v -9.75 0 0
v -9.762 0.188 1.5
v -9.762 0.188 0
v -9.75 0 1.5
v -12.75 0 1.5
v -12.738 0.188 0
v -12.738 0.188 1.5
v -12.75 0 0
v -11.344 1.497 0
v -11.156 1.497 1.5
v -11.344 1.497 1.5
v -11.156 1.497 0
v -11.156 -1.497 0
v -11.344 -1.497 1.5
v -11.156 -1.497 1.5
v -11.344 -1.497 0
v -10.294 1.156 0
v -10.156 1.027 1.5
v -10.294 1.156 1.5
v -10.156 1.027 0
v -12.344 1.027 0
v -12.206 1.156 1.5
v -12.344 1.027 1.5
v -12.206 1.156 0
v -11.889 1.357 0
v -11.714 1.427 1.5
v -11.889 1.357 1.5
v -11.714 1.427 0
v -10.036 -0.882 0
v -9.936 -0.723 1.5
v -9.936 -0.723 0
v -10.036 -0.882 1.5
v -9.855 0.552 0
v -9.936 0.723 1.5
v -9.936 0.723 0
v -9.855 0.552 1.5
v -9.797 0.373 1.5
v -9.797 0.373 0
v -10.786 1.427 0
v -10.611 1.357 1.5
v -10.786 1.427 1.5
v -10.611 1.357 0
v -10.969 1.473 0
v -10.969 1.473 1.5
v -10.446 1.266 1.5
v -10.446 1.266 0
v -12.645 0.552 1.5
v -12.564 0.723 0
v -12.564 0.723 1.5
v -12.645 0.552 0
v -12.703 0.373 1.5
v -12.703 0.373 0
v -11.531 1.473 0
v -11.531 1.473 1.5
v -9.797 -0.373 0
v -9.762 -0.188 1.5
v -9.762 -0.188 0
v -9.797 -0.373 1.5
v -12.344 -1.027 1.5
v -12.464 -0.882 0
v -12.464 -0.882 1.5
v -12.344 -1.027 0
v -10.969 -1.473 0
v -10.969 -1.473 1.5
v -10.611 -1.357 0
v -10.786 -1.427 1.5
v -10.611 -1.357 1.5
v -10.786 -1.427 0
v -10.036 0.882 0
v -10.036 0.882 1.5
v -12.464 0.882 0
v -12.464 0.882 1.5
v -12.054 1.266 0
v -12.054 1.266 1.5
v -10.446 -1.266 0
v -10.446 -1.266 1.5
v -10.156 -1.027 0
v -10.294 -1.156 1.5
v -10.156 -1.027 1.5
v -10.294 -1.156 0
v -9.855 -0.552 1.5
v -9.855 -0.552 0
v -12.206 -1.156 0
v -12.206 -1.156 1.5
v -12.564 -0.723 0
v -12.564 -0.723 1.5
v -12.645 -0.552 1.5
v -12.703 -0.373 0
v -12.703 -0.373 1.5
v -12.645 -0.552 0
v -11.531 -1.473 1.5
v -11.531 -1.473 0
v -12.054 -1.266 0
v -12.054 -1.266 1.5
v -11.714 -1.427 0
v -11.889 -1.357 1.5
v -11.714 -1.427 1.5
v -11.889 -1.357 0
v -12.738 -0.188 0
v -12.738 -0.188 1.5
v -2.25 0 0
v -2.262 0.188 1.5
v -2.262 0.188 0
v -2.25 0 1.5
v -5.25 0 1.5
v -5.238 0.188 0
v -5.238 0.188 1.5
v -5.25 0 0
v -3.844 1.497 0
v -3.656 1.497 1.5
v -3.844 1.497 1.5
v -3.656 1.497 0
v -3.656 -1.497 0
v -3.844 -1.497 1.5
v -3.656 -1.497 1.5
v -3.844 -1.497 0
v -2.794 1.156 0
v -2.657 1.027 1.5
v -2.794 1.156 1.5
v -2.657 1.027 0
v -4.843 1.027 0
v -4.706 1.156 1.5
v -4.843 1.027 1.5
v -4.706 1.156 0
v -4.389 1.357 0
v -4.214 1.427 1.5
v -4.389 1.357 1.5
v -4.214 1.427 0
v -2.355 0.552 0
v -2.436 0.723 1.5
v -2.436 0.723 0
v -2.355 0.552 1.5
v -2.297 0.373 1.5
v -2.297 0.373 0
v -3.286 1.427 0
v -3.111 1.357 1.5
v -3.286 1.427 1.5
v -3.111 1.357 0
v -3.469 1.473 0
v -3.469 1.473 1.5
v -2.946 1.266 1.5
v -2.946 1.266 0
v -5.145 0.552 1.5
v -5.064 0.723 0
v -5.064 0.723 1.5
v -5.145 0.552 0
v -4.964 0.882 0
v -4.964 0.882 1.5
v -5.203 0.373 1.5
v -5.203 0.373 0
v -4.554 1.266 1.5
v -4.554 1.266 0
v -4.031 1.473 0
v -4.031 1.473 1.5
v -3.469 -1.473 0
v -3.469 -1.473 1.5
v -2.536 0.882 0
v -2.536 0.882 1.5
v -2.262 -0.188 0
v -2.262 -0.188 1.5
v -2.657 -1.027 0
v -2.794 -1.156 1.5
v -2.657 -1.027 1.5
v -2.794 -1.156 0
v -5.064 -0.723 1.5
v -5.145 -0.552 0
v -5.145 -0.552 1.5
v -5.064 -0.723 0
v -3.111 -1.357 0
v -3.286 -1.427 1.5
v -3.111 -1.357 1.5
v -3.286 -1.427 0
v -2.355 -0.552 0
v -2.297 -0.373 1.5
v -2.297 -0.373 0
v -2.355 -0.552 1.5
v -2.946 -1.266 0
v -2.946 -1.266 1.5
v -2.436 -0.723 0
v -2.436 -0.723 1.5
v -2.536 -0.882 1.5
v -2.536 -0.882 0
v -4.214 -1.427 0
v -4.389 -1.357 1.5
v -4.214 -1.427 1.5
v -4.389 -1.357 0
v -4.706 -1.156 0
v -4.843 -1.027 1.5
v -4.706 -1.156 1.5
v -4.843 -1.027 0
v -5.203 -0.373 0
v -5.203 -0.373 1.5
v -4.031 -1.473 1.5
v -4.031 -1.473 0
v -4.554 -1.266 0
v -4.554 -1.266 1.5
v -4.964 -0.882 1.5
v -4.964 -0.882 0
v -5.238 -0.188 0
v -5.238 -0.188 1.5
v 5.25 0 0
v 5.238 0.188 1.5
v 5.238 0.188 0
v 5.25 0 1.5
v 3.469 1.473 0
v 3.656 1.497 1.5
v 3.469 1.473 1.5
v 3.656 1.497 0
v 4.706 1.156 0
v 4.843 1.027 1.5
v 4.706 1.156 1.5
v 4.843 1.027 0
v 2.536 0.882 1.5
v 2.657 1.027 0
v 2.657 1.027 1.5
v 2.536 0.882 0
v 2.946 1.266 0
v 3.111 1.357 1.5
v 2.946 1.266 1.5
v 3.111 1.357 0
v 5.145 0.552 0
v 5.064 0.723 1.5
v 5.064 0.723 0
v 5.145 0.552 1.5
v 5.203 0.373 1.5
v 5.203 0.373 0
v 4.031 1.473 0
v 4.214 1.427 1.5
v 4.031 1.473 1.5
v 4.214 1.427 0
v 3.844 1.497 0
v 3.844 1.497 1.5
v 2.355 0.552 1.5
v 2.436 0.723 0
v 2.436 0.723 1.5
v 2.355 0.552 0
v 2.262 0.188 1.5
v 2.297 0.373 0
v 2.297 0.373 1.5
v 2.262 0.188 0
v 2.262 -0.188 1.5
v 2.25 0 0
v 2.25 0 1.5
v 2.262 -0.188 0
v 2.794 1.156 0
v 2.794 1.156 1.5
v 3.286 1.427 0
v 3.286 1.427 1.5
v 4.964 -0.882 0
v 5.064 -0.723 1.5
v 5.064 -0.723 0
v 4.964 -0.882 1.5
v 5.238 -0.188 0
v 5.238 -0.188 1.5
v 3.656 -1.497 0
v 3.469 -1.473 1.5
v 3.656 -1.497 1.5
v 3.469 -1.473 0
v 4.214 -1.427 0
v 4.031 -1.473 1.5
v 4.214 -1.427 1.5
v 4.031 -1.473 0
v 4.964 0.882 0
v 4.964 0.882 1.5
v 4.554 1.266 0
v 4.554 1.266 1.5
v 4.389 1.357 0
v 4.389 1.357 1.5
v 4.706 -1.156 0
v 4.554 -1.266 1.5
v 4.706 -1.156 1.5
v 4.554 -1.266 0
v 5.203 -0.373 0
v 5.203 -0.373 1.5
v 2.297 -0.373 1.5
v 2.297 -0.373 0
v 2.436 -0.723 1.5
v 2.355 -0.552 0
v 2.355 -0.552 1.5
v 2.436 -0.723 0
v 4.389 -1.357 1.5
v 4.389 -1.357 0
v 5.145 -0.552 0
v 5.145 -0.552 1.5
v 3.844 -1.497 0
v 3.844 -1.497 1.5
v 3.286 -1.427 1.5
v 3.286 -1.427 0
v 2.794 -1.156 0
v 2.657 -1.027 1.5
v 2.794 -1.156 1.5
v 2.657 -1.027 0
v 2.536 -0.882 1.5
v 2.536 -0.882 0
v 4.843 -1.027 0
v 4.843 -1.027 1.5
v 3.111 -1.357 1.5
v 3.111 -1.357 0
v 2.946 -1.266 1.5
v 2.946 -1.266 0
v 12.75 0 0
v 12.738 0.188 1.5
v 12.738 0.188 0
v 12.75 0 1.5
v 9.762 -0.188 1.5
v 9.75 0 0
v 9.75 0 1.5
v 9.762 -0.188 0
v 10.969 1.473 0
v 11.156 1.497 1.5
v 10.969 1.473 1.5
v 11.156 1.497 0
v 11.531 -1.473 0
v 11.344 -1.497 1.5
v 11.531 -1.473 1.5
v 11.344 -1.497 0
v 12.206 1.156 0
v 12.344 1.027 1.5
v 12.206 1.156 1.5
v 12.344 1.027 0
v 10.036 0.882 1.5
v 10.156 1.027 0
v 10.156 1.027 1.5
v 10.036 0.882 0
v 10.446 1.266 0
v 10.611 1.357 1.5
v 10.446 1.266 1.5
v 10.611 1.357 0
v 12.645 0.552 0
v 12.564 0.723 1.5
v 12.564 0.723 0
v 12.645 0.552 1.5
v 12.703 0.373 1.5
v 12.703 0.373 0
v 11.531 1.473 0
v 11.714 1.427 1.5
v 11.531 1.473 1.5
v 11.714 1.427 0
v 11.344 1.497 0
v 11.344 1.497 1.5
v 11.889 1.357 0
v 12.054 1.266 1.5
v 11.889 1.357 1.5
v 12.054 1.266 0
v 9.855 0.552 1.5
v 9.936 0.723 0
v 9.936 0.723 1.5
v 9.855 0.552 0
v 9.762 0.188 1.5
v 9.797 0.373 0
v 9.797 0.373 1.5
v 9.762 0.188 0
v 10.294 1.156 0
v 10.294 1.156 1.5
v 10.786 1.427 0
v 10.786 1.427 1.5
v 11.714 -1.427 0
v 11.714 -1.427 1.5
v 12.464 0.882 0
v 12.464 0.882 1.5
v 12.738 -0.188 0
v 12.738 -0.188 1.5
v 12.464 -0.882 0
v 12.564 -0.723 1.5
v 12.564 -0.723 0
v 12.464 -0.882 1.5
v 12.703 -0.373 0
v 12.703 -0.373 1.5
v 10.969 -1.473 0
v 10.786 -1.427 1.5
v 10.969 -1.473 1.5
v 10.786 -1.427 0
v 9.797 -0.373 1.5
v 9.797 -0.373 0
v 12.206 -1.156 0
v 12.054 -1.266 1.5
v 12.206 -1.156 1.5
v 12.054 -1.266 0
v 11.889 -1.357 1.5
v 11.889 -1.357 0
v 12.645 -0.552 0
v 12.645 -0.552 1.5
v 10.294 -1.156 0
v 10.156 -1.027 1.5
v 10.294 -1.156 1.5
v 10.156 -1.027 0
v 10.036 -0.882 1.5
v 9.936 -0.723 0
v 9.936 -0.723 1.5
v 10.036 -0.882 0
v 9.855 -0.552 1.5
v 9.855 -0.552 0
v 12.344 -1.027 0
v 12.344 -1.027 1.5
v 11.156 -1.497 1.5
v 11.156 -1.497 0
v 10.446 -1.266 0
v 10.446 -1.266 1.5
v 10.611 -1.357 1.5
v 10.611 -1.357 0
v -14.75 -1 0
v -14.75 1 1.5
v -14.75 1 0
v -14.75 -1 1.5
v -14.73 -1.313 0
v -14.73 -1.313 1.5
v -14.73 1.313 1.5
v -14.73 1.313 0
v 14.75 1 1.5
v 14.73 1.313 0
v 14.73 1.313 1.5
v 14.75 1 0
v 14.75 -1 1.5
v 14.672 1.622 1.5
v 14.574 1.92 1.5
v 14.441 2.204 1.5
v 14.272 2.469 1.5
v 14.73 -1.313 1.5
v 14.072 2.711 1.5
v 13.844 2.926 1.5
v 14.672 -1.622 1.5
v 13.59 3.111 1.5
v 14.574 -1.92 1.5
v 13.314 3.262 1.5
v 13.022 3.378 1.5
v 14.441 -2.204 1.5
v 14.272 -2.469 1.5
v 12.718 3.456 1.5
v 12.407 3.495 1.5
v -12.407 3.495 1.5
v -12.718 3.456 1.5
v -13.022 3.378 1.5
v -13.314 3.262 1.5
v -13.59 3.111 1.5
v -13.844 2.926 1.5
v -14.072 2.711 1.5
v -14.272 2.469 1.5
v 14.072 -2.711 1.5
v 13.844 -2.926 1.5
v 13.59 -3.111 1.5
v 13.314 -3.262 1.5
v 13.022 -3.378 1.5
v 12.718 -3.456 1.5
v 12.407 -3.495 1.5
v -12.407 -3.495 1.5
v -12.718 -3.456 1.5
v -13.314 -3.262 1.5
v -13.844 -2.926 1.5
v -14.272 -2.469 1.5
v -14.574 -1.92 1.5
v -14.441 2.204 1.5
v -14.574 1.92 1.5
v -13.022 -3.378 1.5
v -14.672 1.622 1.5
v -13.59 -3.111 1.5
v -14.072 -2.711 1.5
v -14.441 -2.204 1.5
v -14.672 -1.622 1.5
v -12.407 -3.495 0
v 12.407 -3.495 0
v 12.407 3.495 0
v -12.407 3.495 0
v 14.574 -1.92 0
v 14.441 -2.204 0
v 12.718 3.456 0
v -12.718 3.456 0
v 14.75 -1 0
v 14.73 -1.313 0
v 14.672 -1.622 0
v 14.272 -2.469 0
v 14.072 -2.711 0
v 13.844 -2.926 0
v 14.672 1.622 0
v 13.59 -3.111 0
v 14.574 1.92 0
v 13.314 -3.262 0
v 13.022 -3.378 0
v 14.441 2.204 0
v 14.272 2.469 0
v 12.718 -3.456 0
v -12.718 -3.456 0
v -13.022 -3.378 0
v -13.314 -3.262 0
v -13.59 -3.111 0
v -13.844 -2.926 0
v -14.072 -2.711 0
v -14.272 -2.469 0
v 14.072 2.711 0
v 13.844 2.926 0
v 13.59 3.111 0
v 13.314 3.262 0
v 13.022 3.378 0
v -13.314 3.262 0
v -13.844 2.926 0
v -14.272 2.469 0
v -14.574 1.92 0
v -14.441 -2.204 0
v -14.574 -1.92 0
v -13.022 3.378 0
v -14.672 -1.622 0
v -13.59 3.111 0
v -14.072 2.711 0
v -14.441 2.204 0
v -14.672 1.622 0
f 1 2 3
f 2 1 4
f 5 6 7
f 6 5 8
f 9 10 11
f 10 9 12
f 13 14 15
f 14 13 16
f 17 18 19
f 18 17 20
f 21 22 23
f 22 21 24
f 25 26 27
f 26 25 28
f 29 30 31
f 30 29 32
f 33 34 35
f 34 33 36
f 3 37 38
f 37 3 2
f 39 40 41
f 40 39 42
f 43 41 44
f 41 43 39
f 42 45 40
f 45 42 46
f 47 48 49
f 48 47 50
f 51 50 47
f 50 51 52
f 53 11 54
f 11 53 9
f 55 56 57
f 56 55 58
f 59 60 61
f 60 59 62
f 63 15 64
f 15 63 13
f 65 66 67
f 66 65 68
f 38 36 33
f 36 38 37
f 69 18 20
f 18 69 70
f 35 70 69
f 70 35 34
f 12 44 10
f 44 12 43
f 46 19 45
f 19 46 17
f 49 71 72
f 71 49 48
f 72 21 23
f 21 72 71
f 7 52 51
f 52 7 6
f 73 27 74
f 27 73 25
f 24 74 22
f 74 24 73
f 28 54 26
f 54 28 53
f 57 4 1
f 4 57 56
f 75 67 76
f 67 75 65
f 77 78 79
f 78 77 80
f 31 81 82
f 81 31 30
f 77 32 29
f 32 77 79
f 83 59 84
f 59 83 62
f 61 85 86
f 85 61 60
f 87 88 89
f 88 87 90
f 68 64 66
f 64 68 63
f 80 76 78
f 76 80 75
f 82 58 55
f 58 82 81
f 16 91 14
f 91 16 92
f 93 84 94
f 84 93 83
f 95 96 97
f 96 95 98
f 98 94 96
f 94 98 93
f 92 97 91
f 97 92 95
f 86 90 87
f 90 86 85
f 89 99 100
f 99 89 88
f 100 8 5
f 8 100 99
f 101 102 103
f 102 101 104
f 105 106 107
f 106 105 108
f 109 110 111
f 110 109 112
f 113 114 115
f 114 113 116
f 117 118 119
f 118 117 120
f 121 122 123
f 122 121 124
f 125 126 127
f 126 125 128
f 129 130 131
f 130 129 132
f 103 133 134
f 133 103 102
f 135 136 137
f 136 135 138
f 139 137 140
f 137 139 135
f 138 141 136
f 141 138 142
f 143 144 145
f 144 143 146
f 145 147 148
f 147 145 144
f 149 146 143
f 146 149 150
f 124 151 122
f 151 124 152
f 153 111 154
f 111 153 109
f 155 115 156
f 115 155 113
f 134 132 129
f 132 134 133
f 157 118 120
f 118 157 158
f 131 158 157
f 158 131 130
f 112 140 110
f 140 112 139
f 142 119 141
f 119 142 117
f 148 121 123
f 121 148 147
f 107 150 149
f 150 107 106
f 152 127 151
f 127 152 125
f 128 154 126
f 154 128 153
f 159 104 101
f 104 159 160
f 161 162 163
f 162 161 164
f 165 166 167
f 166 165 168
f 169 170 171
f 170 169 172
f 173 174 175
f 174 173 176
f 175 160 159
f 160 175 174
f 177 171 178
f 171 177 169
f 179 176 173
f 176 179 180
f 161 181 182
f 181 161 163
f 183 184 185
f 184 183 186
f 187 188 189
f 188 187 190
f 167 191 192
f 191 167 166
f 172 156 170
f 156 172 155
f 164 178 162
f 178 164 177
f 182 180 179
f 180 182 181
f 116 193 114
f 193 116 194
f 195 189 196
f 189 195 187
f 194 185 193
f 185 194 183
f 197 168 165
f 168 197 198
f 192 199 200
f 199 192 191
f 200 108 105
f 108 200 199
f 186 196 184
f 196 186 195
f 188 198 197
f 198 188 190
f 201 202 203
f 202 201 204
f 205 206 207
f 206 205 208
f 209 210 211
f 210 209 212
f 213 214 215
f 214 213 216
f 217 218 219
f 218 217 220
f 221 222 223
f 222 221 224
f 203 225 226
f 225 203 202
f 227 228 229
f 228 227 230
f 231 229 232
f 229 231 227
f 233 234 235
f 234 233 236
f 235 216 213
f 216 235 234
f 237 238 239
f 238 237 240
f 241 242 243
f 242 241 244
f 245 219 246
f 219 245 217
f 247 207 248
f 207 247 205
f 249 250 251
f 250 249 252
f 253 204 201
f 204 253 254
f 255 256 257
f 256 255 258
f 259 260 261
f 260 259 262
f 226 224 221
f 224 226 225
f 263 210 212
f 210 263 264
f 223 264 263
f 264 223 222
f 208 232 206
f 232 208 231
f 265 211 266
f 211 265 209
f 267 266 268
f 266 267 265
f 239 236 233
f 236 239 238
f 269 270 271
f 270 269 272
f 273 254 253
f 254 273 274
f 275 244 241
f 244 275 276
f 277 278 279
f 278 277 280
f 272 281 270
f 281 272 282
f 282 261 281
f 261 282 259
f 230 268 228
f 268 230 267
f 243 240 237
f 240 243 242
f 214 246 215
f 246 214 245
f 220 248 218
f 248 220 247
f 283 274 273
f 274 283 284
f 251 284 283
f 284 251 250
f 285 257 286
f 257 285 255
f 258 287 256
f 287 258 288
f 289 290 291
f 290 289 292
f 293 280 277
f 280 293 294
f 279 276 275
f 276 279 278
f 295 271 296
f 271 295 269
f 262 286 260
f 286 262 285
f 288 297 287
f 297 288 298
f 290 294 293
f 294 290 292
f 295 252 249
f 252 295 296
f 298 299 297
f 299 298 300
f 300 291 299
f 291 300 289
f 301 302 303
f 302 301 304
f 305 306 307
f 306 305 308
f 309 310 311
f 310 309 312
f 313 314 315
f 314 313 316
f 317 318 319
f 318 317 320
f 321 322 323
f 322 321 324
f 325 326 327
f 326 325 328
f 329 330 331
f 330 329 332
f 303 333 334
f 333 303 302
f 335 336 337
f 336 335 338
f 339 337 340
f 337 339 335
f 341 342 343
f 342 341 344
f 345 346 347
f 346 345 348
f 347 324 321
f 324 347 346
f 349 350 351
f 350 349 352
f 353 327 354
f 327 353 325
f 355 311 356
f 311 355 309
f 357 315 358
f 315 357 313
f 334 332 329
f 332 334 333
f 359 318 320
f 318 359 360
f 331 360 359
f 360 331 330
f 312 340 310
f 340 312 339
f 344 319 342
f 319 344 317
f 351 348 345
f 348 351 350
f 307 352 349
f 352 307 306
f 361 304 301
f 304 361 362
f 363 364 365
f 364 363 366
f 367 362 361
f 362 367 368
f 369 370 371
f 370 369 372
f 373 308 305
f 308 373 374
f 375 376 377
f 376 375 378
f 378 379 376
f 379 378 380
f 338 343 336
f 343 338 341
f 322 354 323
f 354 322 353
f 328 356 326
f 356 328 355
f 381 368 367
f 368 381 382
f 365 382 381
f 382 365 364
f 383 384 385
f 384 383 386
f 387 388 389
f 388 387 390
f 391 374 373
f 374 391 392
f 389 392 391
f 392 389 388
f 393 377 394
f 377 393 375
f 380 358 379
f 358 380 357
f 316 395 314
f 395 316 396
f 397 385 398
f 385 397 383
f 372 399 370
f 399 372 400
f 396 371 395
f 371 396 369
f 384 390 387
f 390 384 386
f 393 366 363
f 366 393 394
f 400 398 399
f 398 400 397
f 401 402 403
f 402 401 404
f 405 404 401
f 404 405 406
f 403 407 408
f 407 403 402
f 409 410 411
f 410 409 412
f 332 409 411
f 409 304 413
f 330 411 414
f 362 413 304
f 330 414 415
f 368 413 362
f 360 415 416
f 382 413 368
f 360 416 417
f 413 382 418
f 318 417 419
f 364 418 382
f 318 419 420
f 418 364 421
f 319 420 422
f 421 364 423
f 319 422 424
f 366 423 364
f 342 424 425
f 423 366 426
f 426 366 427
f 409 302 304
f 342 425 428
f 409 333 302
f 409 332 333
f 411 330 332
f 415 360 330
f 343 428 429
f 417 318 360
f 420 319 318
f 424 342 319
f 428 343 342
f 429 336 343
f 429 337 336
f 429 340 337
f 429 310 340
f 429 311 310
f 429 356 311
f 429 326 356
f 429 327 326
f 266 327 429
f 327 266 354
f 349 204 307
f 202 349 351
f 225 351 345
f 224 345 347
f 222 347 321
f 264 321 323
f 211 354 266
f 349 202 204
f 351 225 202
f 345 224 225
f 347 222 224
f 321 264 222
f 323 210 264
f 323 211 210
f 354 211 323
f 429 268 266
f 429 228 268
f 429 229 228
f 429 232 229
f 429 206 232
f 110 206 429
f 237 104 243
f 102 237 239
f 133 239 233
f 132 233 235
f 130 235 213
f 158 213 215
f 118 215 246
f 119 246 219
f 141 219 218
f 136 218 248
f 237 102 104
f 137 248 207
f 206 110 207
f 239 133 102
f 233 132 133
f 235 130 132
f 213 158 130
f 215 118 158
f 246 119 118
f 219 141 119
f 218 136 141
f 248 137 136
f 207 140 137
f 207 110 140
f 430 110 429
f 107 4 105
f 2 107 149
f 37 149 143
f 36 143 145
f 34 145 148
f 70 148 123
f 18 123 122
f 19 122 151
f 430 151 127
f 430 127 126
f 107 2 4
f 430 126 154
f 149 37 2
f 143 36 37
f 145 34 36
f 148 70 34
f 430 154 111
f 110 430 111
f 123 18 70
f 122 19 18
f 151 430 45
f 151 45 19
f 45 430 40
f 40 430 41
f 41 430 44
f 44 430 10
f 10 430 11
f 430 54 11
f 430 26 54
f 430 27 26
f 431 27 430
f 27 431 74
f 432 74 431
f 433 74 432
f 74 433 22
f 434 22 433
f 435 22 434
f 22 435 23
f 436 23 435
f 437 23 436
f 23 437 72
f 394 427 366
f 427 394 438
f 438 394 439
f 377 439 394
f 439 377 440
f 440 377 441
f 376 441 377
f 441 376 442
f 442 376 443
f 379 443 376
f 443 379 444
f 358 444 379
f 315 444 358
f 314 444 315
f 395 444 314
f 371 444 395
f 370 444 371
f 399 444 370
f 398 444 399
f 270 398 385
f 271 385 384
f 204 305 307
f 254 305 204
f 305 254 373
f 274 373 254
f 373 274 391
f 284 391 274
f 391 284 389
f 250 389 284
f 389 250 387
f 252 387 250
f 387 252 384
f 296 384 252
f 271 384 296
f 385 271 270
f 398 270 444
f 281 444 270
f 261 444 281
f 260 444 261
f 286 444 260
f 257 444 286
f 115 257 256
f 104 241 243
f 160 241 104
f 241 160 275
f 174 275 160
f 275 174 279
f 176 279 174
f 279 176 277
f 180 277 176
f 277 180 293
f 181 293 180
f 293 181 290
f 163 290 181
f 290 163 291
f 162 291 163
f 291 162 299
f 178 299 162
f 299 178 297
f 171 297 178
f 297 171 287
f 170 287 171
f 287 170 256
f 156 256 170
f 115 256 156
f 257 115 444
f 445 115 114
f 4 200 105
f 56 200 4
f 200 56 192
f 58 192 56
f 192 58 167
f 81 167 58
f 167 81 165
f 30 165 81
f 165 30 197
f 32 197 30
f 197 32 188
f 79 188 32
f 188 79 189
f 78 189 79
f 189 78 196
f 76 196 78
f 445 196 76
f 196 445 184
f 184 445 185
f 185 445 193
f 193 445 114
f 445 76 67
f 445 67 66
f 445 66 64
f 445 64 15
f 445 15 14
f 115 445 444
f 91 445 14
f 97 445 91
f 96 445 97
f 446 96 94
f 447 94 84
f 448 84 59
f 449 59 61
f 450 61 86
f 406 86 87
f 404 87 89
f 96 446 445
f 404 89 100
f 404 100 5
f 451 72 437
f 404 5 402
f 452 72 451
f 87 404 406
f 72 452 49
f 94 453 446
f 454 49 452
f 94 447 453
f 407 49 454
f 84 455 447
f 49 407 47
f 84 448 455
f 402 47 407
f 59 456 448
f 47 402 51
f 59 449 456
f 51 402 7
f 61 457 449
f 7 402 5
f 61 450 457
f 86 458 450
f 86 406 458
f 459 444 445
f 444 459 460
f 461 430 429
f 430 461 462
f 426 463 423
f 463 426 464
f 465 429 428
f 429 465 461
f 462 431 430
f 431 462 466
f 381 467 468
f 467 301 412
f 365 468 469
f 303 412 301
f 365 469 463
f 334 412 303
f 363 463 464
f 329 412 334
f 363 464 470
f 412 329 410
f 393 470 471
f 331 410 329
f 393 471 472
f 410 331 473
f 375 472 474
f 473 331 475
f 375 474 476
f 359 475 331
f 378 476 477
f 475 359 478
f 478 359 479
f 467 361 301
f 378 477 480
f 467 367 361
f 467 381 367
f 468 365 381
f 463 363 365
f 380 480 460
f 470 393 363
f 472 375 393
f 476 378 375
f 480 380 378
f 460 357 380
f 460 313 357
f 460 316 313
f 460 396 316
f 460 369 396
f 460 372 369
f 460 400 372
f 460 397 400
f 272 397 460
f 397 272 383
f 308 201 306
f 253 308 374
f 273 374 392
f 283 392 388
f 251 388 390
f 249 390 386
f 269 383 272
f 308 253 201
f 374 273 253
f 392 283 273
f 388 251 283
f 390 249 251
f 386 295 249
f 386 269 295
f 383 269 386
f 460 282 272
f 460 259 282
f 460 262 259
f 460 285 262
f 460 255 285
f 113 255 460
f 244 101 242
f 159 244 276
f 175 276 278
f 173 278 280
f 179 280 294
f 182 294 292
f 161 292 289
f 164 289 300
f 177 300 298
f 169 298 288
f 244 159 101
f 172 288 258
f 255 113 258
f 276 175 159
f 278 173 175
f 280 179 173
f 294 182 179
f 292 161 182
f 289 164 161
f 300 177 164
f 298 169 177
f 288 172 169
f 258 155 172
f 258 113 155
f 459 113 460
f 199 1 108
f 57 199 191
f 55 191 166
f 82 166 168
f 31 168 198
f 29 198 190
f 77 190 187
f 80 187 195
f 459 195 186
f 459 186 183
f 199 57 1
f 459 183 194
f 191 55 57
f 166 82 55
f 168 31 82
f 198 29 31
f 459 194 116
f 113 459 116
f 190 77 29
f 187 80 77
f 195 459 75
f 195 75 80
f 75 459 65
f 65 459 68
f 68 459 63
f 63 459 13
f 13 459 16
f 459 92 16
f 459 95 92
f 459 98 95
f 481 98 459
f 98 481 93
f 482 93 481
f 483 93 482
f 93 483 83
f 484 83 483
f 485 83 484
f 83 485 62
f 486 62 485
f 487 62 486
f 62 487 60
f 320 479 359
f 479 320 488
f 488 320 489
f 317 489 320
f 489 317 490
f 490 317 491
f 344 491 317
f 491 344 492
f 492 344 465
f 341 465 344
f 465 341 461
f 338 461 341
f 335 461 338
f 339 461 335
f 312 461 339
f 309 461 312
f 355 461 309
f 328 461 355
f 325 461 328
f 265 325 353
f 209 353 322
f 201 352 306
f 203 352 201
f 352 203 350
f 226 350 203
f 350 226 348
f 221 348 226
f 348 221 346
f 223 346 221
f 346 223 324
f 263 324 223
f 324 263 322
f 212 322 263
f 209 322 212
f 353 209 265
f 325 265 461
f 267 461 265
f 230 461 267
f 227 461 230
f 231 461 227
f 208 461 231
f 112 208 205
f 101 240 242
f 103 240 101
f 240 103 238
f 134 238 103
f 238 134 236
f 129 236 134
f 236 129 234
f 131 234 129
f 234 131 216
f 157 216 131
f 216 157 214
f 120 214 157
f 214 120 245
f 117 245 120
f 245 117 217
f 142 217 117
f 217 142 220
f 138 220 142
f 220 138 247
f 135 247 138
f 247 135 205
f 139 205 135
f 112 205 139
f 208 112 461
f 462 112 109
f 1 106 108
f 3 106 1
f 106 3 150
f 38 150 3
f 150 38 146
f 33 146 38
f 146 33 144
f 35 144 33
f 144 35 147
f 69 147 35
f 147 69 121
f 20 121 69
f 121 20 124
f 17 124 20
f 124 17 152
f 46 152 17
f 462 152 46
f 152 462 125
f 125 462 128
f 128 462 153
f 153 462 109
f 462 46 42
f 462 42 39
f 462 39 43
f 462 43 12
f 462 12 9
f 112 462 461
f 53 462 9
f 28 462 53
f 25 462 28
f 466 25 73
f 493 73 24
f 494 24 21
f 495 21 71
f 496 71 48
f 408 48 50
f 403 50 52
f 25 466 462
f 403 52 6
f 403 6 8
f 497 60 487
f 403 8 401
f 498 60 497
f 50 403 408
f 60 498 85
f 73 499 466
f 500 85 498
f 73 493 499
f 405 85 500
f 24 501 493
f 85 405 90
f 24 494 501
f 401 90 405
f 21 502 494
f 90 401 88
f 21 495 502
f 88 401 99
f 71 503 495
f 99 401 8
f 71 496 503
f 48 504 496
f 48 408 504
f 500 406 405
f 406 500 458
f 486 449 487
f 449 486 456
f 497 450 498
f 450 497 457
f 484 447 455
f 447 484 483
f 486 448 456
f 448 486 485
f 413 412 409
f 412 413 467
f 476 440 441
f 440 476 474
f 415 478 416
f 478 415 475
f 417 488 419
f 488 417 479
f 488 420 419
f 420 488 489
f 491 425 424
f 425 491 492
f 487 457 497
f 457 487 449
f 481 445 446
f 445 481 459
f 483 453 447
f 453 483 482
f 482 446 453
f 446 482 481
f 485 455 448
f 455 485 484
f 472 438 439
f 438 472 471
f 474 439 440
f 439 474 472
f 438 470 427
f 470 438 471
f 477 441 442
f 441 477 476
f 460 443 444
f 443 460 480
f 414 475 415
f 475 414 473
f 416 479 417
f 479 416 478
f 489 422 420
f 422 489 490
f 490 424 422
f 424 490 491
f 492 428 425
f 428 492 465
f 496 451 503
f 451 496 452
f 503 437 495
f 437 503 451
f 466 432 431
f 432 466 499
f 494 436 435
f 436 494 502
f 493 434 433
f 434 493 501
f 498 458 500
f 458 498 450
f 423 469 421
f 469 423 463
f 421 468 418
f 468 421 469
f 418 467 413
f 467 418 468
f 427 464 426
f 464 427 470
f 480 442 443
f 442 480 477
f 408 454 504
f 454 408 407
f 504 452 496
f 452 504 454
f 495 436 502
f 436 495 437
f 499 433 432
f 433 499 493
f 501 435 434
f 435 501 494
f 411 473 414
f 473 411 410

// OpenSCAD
$fn = 50;


difference() {
	union() {
		translate(v = [0, 0, 0]) {
			rotate(a = [0, 0, 0]) {
				hull() {
					translate(v = [-12.2500000000, 1.0000000000, 0]) {
						rotate(a = [0, 0, 0]) {
							translate(v = [0, 0, 0]) {
								rotate(a = [0, 0, 0]) {
									cylinder(h = 1.5000000000, r = 2.5000000000);
								}
							}
						}
					}
					translate(v = [12.2500000000, 1.0000000000, 0]) {
						rotate(a = [0, 0, 0]) {
							translate(v = [0, 0, 0]) {
								rotate(a = [0, 0, 0]) {
									cylinder(h = 1.5000000000, r = 2.5000000000);
								}
							}
						}
					}
					translate(v = [-12.2500000000, -1.0000000000, 0]) {
						rotate(a = [0, 0, 0]) {
							translate(v = [0, 0, 0]) {
								rotate(a = [0, 0, 0]) {
									cylinder(h = 1.5000000000, r = 2.5000000000);
								}
							}
						}
					}
					translate(v = [12.2500000000, -1.0000000000, 0]) {
						rotate(a = [0, 0, 0]) {
							translate(v = [0, 0, 0]) {
								rotate(a = [0, 0, 0]) {
									cylinder(h = 1.5000000000, r = 2.5000000000);
								}
							}
						}
					}
				}
			}
		}
	}
	union() {
		translate(v = [-11.2500000000, 0.0000000000, 0]) {
			rotate(a = [0, 0, 0]) {
				translate(v = [0, 0, -50]) {
					rotate(a = [0, 0, 0]) {
						cylinder(h = 100, r = 1.5000000000);
					}
				}
			}
		}
		translate(v = [-3.7500000000, 0.0000000000, 0]) {
			rotate(a = [0, 0, 0]) {
				translate(v = [0, 0, -50]) {
					rotate(a = [0, 0, 0]) {
						cylinder(h = 100, r = 1.5000000000);
					}
				}
			}
		}
		translate(v = [3.7500000000, 0.0000000000, 0]) {
			rotate(a = [0, 0, 0]) {
				translate(v = [0, 0, -50]) {
					rotate(a = [0, 0, 0]) {
						cylinder(h = 100, r = 1.5000000000);
					}
				}
			}
		}
		translate(v = [11.2500000000, 0.0000000000, 0]) {
			rotate(a = [0, 0, 0]) {
				translate(v = [0, 0, -50]) {
					rotate(a = [0, 0, 0]) {
						cylinder(h = 100, r = 1.5000000000);
					}
				}
			}
		}
	}
}
